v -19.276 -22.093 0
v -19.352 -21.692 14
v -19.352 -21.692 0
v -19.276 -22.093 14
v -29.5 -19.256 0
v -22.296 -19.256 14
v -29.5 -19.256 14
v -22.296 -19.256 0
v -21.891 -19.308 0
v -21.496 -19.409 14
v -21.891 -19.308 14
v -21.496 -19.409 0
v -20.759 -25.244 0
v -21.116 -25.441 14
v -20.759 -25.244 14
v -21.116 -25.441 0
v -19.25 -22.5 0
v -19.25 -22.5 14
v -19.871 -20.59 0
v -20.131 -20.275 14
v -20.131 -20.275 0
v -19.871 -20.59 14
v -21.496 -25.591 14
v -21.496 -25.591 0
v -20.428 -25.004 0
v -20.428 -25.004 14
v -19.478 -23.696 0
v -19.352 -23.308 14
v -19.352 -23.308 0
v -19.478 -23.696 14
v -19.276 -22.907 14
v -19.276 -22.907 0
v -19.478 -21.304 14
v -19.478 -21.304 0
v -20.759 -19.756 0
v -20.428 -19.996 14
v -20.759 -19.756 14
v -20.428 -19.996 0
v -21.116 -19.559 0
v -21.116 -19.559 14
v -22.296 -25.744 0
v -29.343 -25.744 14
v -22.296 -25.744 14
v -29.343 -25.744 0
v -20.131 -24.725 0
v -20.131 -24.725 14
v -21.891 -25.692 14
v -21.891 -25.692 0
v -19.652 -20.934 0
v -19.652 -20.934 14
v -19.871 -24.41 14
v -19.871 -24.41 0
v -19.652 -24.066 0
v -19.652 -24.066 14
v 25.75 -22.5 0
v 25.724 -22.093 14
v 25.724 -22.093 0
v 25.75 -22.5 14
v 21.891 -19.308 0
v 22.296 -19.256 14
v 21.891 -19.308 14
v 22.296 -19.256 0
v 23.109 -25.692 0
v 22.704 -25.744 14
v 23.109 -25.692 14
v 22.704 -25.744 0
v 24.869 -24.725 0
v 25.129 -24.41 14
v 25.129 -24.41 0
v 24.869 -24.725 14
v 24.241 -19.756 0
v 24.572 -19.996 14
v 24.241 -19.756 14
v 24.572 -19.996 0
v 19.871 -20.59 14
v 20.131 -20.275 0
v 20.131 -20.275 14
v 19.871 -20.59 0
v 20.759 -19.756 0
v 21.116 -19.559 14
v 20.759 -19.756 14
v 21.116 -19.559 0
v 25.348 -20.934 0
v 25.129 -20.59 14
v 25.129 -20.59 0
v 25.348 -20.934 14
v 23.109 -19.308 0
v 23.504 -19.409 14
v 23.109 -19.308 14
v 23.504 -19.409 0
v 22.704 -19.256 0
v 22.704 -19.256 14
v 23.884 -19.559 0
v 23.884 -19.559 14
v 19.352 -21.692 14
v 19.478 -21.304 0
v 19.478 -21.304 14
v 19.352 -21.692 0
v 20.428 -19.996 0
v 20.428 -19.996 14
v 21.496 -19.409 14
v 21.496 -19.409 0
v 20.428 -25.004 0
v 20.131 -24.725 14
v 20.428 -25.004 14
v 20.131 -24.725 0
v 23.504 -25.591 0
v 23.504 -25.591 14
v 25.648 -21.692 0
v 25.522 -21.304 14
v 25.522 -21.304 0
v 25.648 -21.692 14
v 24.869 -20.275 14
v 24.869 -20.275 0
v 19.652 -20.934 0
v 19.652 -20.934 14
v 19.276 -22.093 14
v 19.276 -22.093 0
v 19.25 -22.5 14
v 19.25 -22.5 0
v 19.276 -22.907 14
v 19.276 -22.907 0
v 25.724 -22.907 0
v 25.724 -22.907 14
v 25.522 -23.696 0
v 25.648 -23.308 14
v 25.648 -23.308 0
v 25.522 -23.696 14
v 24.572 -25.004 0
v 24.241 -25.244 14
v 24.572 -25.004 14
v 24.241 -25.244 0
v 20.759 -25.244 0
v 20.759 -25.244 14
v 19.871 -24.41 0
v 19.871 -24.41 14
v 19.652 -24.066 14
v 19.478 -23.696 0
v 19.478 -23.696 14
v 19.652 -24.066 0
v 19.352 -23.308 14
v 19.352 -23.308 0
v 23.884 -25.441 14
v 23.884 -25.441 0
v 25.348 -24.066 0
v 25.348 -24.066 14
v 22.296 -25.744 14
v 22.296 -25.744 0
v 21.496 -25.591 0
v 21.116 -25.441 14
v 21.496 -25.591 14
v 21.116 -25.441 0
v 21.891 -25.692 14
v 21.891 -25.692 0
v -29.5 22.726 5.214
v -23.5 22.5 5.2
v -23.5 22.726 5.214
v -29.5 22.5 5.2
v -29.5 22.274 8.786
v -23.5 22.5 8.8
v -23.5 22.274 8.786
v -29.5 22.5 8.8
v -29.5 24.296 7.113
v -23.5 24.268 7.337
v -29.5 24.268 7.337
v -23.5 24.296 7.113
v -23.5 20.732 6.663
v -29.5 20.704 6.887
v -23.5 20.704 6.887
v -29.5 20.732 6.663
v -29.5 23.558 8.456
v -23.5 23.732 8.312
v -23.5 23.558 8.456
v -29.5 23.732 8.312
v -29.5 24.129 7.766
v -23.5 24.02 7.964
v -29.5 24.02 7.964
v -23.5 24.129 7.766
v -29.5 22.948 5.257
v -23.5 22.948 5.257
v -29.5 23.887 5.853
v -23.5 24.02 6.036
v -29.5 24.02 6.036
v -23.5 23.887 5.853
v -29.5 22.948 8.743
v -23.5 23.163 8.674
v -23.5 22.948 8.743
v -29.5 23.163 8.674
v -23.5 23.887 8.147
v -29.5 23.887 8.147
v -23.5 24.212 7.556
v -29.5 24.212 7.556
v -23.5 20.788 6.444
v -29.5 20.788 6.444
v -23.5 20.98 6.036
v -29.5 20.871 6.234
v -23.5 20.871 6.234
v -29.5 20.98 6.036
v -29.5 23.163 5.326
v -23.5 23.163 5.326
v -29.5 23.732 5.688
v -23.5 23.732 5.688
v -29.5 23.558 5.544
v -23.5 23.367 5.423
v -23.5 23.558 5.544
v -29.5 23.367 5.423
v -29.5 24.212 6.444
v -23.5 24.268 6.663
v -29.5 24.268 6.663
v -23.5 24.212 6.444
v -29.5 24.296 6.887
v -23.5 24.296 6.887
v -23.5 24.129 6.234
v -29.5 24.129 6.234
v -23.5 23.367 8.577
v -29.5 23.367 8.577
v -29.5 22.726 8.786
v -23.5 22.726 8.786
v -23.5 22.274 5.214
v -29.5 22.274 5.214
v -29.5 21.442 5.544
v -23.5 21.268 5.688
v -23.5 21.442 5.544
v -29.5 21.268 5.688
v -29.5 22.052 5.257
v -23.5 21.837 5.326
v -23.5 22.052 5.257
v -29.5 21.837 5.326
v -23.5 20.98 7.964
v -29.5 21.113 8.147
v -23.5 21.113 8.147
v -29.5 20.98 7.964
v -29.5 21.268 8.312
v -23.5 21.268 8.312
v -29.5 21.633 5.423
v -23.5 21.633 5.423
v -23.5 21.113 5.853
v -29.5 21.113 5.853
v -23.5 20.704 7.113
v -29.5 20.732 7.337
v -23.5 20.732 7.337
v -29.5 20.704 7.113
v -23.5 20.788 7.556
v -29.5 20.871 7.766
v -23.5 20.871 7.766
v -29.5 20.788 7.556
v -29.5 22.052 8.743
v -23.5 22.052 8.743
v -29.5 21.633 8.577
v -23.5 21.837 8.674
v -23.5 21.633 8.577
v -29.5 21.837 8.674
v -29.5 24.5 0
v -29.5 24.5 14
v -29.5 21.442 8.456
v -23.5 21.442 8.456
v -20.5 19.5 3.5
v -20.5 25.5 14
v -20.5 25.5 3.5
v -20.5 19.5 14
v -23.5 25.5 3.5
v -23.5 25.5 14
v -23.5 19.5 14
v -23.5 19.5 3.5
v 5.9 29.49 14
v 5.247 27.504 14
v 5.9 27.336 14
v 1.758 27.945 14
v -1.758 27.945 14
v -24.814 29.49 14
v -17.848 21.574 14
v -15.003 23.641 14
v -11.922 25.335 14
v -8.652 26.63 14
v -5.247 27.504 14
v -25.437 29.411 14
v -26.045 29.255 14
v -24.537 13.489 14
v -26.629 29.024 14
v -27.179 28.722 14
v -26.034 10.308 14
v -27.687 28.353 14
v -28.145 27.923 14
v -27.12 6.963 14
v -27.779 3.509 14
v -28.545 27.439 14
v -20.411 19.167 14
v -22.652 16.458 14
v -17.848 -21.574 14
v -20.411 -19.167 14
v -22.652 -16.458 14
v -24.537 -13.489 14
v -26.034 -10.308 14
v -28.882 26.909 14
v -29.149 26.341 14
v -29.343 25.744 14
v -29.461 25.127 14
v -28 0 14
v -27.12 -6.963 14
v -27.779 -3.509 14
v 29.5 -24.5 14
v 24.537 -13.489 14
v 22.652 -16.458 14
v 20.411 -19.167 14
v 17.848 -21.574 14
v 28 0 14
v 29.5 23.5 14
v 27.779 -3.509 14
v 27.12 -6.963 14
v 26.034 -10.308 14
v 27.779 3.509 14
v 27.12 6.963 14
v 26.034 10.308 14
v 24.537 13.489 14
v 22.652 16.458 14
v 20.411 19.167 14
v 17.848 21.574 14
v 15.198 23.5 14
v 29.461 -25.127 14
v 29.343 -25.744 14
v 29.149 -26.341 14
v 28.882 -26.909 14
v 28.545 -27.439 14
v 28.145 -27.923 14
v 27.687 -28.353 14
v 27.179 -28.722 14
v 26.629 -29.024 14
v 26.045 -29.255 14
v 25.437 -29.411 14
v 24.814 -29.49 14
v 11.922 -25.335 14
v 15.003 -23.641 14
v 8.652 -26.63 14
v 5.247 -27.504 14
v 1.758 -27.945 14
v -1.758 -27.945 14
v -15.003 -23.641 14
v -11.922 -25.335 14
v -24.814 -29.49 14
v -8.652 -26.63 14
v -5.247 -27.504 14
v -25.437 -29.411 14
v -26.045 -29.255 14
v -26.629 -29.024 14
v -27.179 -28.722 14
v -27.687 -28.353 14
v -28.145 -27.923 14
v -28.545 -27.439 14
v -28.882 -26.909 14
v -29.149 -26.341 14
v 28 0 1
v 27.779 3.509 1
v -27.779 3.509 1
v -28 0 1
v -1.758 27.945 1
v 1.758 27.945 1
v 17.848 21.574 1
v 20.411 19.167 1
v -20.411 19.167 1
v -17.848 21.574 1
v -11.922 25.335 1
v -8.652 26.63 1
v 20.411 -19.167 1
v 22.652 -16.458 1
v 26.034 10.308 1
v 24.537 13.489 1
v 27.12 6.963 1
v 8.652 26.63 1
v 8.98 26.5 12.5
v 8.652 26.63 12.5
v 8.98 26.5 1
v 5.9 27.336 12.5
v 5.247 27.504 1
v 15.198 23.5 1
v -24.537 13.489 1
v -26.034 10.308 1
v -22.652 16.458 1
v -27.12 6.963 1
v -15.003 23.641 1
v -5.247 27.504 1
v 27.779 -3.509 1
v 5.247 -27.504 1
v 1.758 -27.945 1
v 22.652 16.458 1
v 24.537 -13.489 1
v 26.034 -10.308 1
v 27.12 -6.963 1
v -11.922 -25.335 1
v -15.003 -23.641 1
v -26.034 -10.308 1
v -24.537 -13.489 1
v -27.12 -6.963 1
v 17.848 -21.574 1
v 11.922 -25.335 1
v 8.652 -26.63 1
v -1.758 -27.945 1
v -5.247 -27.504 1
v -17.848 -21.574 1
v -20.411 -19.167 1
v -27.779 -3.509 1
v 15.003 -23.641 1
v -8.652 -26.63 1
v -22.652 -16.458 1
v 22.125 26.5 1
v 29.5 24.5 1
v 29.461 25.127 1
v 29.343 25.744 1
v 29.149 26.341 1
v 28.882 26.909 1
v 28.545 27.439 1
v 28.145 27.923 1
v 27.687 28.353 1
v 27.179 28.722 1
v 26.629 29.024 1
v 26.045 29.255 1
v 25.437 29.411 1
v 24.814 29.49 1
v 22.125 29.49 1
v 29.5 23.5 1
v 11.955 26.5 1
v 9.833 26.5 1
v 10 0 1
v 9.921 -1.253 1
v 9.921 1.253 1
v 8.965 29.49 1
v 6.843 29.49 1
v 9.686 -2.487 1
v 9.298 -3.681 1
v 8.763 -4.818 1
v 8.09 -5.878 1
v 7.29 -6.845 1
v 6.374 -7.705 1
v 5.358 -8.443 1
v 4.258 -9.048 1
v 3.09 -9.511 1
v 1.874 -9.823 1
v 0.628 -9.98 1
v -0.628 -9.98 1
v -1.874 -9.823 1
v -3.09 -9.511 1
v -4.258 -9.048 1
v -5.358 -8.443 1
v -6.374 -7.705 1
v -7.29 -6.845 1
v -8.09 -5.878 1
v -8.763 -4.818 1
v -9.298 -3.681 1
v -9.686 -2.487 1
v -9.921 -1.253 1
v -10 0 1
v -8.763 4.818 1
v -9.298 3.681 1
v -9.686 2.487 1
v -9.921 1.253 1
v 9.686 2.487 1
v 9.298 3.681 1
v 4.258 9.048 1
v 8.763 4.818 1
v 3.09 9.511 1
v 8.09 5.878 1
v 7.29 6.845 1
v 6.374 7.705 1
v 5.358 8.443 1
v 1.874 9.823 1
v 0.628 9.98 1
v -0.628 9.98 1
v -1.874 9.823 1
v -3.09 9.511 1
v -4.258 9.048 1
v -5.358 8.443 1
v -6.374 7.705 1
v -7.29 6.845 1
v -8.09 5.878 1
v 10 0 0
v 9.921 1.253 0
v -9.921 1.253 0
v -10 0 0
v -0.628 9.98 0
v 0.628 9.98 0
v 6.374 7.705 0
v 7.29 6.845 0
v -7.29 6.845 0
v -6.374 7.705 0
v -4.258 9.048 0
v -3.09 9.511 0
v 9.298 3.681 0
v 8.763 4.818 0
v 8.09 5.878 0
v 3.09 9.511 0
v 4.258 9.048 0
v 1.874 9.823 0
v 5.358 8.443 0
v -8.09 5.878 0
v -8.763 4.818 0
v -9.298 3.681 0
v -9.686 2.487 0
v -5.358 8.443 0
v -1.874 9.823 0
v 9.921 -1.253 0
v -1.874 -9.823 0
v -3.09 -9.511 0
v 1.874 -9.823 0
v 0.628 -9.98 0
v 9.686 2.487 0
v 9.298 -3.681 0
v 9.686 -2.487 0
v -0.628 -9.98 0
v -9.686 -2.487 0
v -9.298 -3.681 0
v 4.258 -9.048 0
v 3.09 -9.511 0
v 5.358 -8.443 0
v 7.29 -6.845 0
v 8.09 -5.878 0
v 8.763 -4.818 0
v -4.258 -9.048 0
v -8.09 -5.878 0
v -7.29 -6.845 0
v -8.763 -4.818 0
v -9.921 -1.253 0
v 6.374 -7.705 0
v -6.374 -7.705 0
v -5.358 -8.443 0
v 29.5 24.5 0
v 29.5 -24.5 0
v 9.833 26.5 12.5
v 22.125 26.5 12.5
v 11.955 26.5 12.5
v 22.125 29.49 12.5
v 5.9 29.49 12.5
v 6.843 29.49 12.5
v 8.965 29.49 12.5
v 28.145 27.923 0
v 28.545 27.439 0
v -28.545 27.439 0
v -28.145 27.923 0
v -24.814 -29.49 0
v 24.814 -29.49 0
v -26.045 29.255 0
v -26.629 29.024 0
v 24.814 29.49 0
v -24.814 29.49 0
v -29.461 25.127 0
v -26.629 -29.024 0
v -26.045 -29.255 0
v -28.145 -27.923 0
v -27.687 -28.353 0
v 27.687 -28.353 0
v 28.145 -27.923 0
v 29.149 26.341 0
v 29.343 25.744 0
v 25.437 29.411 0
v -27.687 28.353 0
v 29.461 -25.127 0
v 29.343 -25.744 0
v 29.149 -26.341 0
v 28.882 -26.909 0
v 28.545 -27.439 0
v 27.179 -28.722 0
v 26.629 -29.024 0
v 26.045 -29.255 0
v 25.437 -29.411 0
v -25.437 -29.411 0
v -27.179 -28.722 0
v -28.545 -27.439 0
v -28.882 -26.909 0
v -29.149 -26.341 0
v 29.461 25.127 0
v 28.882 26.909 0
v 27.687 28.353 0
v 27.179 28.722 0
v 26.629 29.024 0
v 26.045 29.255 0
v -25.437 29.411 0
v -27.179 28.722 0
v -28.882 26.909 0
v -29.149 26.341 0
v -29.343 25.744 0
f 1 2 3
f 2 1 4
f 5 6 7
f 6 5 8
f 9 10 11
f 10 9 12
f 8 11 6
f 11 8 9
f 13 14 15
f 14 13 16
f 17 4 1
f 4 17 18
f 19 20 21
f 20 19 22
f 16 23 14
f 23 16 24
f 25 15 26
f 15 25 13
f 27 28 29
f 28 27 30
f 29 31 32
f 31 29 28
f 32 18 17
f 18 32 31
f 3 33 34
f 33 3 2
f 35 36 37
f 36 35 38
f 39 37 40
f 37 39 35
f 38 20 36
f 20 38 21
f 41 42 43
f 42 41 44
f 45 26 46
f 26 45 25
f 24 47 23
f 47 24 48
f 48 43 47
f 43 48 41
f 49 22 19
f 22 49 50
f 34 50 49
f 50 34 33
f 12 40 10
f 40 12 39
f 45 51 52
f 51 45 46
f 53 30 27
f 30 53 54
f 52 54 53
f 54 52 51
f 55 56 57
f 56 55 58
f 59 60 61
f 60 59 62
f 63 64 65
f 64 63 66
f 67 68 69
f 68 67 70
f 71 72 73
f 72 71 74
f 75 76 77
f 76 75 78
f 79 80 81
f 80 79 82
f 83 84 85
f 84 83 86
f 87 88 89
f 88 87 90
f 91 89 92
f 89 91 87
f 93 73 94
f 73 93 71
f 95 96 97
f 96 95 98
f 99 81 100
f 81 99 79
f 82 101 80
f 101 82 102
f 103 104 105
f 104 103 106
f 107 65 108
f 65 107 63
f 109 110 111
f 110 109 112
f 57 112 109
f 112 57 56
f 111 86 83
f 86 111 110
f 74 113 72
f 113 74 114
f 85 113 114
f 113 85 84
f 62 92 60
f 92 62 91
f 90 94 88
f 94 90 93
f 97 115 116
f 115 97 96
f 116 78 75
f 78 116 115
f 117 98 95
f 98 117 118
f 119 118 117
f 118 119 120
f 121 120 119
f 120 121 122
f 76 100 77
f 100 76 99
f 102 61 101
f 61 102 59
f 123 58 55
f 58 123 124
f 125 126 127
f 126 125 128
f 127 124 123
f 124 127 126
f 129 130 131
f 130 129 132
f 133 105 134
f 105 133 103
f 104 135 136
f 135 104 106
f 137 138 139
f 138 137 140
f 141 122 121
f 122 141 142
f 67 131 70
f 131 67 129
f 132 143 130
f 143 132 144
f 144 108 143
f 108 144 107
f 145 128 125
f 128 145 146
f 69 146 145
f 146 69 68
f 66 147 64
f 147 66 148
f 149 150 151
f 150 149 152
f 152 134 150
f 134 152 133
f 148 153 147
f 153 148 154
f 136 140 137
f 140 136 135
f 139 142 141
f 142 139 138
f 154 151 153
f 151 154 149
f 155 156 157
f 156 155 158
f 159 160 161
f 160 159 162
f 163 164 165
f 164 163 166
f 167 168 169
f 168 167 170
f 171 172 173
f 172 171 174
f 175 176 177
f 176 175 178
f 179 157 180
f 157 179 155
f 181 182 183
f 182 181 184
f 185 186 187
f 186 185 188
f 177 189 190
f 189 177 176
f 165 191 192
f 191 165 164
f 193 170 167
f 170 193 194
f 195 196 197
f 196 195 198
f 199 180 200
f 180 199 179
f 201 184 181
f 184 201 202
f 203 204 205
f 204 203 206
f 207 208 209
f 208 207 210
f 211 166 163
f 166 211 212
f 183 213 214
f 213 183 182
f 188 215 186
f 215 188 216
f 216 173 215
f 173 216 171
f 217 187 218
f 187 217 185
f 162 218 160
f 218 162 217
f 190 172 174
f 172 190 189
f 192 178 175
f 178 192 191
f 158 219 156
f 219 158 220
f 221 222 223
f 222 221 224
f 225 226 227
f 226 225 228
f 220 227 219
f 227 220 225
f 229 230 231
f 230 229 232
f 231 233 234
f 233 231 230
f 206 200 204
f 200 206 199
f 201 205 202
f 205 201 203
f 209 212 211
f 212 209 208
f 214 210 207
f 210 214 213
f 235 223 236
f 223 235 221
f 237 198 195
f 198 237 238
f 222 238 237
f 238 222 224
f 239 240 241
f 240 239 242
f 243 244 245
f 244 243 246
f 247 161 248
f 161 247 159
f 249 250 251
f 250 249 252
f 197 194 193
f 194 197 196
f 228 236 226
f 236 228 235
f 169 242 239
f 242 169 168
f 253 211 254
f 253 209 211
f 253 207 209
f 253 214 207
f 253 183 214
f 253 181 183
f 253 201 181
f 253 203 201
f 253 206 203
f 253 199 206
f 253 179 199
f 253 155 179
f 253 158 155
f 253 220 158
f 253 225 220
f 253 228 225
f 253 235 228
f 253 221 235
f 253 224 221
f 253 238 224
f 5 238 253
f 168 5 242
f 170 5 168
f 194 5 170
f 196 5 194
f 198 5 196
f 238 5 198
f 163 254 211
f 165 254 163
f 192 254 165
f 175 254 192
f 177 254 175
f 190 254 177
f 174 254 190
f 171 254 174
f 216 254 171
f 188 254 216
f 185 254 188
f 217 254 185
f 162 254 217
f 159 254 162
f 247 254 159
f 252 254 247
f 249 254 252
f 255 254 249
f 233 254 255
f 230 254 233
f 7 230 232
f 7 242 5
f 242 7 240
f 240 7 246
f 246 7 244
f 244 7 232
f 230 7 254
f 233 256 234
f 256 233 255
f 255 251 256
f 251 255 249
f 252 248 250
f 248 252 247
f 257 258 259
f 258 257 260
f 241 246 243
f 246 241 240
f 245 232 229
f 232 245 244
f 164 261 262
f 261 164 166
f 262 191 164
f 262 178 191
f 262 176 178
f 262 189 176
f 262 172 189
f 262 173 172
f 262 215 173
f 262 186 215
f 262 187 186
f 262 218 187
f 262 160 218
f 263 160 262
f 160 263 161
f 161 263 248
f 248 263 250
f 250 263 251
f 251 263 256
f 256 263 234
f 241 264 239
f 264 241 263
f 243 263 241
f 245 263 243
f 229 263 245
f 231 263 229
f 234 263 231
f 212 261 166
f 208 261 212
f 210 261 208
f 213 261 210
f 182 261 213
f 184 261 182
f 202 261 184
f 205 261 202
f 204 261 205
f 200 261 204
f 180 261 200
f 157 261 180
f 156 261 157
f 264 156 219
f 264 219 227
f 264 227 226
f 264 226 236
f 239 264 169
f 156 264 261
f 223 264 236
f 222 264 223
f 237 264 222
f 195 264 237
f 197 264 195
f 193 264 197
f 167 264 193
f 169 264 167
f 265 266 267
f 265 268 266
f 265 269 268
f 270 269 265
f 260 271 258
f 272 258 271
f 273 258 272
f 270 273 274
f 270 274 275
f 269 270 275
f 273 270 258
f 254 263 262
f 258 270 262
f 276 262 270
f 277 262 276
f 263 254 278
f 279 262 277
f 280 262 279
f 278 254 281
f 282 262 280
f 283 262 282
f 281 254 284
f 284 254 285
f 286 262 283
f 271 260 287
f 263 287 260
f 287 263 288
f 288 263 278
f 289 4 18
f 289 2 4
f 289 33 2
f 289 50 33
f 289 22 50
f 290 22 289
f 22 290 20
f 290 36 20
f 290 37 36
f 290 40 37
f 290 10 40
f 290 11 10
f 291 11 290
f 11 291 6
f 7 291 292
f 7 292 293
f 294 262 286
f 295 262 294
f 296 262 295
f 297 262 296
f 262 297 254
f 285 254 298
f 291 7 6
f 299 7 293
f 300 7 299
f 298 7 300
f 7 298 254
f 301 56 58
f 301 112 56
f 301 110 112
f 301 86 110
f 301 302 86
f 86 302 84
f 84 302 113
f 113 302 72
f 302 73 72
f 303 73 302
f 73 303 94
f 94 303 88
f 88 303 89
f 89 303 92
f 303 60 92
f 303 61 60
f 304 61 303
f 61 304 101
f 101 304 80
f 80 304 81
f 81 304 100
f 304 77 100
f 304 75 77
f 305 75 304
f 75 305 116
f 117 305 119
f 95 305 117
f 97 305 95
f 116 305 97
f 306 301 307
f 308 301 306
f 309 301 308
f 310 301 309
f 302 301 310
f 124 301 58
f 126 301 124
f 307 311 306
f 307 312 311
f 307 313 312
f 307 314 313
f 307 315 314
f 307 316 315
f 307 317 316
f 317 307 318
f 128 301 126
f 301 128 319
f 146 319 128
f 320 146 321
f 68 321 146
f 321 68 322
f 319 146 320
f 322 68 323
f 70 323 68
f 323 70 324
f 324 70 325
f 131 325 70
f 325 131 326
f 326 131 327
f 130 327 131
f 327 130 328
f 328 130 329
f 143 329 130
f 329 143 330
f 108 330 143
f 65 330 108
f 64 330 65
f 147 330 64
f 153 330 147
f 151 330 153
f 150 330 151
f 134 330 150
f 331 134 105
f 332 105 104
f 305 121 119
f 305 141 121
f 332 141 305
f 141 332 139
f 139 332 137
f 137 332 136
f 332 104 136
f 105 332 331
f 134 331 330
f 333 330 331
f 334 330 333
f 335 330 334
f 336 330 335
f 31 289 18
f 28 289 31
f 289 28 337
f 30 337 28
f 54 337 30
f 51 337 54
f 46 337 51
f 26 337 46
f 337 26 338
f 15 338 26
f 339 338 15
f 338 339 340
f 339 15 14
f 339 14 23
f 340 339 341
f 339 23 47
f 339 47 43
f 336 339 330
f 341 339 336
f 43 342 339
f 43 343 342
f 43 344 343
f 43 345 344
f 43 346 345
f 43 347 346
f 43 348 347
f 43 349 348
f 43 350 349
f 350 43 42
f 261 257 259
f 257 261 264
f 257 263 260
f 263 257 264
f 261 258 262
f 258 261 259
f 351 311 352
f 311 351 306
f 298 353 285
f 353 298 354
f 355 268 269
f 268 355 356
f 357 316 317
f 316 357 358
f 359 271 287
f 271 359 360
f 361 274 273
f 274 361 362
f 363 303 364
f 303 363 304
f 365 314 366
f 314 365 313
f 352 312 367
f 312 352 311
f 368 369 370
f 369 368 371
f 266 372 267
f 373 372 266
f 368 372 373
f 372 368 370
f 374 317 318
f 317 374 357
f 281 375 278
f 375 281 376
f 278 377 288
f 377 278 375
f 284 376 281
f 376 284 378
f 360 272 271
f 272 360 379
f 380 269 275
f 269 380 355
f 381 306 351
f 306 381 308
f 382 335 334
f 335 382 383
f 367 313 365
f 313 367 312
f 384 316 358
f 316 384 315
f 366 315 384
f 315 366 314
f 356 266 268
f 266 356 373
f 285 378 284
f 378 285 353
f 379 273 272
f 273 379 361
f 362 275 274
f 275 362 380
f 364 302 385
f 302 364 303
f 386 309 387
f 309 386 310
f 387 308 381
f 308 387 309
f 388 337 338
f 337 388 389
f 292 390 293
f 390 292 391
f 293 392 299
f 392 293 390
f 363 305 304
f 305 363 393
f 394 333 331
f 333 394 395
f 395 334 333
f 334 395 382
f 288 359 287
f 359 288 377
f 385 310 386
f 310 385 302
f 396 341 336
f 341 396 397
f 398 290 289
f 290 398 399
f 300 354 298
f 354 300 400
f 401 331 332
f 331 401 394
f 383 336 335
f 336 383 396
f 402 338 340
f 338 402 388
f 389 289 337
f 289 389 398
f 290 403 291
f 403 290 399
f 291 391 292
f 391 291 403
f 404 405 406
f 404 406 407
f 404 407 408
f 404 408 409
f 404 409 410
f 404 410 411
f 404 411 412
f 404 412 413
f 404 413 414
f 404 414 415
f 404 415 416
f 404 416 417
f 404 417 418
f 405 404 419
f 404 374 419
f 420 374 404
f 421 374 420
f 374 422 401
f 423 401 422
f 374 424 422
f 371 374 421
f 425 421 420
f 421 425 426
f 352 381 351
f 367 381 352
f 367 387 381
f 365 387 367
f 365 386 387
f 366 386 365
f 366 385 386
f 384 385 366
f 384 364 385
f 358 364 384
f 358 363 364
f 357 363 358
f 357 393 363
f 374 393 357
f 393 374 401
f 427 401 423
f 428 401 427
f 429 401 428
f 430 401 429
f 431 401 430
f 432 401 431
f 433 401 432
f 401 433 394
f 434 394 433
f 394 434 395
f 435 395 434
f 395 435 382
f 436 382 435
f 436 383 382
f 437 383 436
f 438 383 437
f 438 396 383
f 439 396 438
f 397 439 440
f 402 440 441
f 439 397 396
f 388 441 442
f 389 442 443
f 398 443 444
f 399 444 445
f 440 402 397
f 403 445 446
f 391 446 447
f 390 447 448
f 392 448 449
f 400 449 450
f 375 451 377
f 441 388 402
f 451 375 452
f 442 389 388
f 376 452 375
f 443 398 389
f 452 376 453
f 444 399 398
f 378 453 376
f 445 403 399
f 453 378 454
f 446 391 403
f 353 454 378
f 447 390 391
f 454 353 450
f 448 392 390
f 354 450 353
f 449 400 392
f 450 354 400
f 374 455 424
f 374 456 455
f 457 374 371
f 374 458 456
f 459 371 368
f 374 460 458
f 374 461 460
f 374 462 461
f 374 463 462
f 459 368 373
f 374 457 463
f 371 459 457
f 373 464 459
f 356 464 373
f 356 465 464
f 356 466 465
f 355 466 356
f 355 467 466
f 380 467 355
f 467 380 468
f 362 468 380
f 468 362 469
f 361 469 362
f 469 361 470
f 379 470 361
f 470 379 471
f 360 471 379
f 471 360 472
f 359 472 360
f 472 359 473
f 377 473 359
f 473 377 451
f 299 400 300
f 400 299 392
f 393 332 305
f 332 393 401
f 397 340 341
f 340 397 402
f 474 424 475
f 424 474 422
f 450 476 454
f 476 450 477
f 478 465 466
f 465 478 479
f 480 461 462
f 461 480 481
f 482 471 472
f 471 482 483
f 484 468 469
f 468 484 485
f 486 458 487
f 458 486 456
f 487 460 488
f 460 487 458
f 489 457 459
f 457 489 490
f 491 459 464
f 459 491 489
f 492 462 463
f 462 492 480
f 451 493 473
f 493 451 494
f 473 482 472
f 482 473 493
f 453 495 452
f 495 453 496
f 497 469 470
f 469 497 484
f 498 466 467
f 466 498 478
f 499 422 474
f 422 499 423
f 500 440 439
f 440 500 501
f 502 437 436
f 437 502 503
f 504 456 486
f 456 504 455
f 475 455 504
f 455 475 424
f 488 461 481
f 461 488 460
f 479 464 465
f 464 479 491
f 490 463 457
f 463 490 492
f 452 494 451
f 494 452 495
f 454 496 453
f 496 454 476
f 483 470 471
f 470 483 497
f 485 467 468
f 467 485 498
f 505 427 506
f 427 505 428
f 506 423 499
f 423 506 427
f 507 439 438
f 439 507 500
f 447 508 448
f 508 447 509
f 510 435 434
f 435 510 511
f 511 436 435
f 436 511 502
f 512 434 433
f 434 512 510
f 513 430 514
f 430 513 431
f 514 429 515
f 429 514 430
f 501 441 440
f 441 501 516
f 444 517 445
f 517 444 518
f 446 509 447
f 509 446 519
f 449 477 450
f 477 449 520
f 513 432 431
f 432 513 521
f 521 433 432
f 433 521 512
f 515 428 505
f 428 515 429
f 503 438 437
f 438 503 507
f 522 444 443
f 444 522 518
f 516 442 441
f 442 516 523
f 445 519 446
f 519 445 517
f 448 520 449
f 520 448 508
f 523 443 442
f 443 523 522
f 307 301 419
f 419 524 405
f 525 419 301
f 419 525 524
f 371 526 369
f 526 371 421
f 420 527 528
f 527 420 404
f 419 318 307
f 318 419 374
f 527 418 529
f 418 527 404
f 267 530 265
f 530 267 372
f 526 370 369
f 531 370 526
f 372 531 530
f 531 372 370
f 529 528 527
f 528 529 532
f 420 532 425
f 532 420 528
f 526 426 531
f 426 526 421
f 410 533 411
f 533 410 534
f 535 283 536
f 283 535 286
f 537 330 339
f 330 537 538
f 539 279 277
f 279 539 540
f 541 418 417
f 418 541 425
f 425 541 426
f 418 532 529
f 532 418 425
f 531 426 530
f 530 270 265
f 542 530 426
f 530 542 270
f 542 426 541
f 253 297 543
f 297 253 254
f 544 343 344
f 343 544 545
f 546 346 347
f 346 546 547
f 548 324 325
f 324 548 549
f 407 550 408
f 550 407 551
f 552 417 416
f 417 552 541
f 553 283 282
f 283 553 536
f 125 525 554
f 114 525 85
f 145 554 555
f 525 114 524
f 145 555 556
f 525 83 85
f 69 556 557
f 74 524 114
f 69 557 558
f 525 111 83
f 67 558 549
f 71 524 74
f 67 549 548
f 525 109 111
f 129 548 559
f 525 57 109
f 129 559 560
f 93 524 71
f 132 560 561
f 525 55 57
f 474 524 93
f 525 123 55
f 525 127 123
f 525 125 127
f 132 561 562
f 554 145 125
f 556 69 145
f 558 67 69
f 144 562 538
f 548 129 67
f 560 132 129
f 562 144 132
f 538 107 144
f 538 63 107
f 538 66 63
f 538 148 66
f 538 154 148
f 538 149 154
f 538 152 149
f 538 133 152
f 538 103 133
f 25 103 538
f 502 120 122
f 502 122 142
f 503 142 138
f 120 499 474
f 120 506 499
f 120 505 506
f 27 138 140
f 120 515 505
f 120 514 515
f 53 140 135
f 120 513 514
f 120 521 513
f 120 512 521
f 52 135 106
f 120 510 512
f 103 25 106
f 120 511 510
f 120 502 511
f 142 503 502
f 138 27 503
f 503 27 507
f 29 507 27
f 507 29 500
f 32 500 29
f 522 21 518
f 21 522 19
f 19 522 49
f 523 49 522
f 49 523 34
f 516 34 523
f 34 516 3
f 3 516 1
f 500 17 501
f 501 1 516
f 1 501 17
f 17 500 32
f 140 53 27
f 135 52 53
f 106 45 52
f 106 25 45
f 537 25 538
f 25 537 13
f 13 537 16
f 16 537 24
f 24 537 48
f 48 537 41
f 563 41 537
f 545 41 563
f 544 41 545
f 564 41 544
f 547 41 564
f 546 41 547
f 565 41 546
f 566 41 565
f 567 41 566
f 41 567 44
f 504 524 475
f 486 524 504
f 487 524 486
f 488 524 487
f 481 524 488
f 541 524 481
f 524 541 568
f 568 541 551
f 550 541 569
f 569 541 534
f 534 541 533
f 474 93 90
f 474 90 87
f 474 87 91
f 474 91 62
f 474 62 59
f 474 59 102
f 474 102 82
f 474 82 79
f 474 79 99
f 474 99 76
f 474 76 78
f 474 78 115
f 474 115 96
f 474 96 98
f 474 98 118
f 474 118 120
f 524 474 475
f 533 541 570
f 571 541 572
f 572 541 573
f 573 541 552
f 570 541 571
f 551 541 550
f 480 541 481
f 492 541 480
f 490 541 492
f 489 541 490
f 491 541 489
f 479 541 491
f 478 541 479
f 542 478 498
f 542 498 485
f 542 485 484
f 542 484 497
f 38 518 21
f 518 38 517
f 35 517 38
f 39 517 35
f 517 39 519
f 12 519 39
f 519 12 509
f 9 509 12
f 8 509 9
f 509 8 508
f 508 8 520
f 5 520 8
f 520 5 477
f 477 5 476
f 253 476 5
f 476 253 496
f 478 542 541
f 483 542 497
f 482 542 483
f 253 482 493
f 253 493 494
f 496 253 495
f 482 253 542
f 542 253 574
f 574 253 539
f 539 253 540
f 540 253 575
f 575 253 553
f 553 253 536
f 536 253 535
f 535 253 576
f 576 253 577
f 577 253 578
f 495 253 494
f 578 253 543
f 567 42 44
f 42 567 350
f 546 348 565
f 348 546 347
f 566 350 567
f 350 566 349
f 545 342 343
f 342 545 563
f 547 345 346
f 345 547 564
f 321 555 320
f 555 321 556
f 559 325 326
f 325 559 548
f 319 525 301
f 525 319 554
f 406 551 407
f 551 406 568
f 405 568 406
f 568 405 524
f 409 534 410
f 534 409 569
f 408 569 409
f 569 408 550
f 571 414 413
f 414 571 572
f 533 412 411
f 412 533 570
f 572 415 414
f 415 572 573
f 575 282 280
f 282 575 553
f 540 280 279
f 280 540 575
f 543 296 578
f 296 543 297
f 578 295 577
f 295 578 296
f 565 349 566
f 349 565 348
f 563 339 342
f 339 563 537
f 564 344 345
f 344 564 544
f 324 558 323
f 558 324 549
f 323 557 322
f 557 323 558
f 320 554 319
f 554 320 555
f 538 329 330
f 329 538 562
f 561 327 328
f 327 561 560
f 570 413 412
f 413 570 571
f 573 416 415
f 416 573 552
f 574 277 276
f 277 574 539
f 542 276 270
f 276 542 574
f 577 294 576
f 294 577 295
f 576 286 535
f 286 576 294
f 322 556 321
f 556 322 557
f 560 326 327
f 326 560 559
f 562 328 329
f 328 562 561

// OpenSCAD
$fn = 50;


difference() {
	union() {
		translate(v = [0, 0, 0]) {
			rotate(a = [0, 0, 0]) {
				hull() {
					translate(v = [-24.5000000000, 24.5000000000, 0]) {
						rotate(a = [0, 0, 0]) {
							translate(v = [0, 0, 0]) {
								rotate(a = [0, 0, 0]) {
									cylinder(h = 14, r = 5);
								}
							}
						}
					}
					translate(v = [24.5000000000, 24.5000000000, 0]) {
						rotate(a = [0, 0, 0]) {
							translate(v = [0, 0, 0]) {
								rotate(a = [0, 0, 0]) {
									cylinder(h = 14, r = 5);
								}
							}
						}
					}
					translate(v = [-24.5000000000, -24.5000000000, 0]) {
						rotate(a = [0, 0, 0]) {
							translate(v = [0, 0, 0]) {
								rotate(a = [0, 0, 0]) {
									cylinder(h = 14, r = 5);
								}
							}
						}
					}
					translate(v = [24.5000000000, -24.5000000000, 0]) {
						rotate(a = [0, 0, 0]) {
							translate(v = [0, 0, 0]) {
								rotate(a = [0, 0, 0]) {
									cylinder(h = 14, r = 5);
								}
							}
						}
					}
				}
			}
		}
	}
	union() {
		translate(v = [-30.0000000000, -22.5000000000, -125]) {
			rotate(a = [0, 0, 0]) {
				hull() {
					translate(v = [7.5000000000, 0, 0]) {
						rotate(a = [0, 0, 0]) {
							translate(v = [0, 0, 0]) {
								rotate(a = [0, 0, 0]) {
									cylinder(h = 250, r = 3.2500000000);
								}
							}
						}
					}
					translate(v = [-7.5000000000, 0, 0]) {
						rotate(a = [0, 0, 0]) {
							translate(v = [0, 0, 0]) {
								rotate(a = [0, 0, 0]) {
									cylinder(h = 250, r = 3.2500000000);
								}
							}
						}
					}
				}
			}
		}
		translate(v = [22.5000000000, -22.5000000000, -125.0000000000]) {
			rotate(a = [0, 0, 0]) {
				cylinder(h = 250, r = 3.2500000000);
			}
		}
		translate(v = [-29.5000000000, 22.5000000000, 7.0000000000]) {
			rotate(a = [0, 90, 0]) {
				cylinder(h = 9, r = 1.8000000000);
			}
		}
		translate(v = [-23.5000000000, 19.5000000000, 3.5000000000]) {
			rotate(a = [0, 0, 0]) {
				cube(size = [3, 6, 10.5000000000]);
			}
		}
		translate(v = [0, 0, 1.0000000000]) {
			rotate(a = [0, 0, 0]) {
				cylinder(h = 16, r = 28.0000000000);
			}
		}
		translate(v = [0, 0, -7.0000000000]) {
			rotate(a = [0, 0, 0]) {
				cylinder(h = 14, r = 10.0000000000);
			}
		}
		translate(v = [0.0000000000, 23.5000000000, 1]) {
			rotate(a = [0, 0, 0]) {
				cube(size = [29.5000000000, 3, 16]);
			}
		}
		translate(v = [22.1250000000, 23.5000000000, 1]) {
			rotate(a = [0, 0, 0]) {
				cube(size = [7.3750000000, 6, 16]);
			}
		}
		translate(v = [5.9000000000, 23.5000000000, 12.5000000000]) {
			rotate(a = [0, 0, 0]) {
				cube(size = [23.6000000000, 6, 1.5000000000]);
			}
		}
		translate(v = [6.0833333333, 30.2500000000, 1]) {
			rotate(a = [0, 0, -45]) {
				cube(size = [7.5000000000, 1.5000000000, 16]);
			}
		}
	}
}
